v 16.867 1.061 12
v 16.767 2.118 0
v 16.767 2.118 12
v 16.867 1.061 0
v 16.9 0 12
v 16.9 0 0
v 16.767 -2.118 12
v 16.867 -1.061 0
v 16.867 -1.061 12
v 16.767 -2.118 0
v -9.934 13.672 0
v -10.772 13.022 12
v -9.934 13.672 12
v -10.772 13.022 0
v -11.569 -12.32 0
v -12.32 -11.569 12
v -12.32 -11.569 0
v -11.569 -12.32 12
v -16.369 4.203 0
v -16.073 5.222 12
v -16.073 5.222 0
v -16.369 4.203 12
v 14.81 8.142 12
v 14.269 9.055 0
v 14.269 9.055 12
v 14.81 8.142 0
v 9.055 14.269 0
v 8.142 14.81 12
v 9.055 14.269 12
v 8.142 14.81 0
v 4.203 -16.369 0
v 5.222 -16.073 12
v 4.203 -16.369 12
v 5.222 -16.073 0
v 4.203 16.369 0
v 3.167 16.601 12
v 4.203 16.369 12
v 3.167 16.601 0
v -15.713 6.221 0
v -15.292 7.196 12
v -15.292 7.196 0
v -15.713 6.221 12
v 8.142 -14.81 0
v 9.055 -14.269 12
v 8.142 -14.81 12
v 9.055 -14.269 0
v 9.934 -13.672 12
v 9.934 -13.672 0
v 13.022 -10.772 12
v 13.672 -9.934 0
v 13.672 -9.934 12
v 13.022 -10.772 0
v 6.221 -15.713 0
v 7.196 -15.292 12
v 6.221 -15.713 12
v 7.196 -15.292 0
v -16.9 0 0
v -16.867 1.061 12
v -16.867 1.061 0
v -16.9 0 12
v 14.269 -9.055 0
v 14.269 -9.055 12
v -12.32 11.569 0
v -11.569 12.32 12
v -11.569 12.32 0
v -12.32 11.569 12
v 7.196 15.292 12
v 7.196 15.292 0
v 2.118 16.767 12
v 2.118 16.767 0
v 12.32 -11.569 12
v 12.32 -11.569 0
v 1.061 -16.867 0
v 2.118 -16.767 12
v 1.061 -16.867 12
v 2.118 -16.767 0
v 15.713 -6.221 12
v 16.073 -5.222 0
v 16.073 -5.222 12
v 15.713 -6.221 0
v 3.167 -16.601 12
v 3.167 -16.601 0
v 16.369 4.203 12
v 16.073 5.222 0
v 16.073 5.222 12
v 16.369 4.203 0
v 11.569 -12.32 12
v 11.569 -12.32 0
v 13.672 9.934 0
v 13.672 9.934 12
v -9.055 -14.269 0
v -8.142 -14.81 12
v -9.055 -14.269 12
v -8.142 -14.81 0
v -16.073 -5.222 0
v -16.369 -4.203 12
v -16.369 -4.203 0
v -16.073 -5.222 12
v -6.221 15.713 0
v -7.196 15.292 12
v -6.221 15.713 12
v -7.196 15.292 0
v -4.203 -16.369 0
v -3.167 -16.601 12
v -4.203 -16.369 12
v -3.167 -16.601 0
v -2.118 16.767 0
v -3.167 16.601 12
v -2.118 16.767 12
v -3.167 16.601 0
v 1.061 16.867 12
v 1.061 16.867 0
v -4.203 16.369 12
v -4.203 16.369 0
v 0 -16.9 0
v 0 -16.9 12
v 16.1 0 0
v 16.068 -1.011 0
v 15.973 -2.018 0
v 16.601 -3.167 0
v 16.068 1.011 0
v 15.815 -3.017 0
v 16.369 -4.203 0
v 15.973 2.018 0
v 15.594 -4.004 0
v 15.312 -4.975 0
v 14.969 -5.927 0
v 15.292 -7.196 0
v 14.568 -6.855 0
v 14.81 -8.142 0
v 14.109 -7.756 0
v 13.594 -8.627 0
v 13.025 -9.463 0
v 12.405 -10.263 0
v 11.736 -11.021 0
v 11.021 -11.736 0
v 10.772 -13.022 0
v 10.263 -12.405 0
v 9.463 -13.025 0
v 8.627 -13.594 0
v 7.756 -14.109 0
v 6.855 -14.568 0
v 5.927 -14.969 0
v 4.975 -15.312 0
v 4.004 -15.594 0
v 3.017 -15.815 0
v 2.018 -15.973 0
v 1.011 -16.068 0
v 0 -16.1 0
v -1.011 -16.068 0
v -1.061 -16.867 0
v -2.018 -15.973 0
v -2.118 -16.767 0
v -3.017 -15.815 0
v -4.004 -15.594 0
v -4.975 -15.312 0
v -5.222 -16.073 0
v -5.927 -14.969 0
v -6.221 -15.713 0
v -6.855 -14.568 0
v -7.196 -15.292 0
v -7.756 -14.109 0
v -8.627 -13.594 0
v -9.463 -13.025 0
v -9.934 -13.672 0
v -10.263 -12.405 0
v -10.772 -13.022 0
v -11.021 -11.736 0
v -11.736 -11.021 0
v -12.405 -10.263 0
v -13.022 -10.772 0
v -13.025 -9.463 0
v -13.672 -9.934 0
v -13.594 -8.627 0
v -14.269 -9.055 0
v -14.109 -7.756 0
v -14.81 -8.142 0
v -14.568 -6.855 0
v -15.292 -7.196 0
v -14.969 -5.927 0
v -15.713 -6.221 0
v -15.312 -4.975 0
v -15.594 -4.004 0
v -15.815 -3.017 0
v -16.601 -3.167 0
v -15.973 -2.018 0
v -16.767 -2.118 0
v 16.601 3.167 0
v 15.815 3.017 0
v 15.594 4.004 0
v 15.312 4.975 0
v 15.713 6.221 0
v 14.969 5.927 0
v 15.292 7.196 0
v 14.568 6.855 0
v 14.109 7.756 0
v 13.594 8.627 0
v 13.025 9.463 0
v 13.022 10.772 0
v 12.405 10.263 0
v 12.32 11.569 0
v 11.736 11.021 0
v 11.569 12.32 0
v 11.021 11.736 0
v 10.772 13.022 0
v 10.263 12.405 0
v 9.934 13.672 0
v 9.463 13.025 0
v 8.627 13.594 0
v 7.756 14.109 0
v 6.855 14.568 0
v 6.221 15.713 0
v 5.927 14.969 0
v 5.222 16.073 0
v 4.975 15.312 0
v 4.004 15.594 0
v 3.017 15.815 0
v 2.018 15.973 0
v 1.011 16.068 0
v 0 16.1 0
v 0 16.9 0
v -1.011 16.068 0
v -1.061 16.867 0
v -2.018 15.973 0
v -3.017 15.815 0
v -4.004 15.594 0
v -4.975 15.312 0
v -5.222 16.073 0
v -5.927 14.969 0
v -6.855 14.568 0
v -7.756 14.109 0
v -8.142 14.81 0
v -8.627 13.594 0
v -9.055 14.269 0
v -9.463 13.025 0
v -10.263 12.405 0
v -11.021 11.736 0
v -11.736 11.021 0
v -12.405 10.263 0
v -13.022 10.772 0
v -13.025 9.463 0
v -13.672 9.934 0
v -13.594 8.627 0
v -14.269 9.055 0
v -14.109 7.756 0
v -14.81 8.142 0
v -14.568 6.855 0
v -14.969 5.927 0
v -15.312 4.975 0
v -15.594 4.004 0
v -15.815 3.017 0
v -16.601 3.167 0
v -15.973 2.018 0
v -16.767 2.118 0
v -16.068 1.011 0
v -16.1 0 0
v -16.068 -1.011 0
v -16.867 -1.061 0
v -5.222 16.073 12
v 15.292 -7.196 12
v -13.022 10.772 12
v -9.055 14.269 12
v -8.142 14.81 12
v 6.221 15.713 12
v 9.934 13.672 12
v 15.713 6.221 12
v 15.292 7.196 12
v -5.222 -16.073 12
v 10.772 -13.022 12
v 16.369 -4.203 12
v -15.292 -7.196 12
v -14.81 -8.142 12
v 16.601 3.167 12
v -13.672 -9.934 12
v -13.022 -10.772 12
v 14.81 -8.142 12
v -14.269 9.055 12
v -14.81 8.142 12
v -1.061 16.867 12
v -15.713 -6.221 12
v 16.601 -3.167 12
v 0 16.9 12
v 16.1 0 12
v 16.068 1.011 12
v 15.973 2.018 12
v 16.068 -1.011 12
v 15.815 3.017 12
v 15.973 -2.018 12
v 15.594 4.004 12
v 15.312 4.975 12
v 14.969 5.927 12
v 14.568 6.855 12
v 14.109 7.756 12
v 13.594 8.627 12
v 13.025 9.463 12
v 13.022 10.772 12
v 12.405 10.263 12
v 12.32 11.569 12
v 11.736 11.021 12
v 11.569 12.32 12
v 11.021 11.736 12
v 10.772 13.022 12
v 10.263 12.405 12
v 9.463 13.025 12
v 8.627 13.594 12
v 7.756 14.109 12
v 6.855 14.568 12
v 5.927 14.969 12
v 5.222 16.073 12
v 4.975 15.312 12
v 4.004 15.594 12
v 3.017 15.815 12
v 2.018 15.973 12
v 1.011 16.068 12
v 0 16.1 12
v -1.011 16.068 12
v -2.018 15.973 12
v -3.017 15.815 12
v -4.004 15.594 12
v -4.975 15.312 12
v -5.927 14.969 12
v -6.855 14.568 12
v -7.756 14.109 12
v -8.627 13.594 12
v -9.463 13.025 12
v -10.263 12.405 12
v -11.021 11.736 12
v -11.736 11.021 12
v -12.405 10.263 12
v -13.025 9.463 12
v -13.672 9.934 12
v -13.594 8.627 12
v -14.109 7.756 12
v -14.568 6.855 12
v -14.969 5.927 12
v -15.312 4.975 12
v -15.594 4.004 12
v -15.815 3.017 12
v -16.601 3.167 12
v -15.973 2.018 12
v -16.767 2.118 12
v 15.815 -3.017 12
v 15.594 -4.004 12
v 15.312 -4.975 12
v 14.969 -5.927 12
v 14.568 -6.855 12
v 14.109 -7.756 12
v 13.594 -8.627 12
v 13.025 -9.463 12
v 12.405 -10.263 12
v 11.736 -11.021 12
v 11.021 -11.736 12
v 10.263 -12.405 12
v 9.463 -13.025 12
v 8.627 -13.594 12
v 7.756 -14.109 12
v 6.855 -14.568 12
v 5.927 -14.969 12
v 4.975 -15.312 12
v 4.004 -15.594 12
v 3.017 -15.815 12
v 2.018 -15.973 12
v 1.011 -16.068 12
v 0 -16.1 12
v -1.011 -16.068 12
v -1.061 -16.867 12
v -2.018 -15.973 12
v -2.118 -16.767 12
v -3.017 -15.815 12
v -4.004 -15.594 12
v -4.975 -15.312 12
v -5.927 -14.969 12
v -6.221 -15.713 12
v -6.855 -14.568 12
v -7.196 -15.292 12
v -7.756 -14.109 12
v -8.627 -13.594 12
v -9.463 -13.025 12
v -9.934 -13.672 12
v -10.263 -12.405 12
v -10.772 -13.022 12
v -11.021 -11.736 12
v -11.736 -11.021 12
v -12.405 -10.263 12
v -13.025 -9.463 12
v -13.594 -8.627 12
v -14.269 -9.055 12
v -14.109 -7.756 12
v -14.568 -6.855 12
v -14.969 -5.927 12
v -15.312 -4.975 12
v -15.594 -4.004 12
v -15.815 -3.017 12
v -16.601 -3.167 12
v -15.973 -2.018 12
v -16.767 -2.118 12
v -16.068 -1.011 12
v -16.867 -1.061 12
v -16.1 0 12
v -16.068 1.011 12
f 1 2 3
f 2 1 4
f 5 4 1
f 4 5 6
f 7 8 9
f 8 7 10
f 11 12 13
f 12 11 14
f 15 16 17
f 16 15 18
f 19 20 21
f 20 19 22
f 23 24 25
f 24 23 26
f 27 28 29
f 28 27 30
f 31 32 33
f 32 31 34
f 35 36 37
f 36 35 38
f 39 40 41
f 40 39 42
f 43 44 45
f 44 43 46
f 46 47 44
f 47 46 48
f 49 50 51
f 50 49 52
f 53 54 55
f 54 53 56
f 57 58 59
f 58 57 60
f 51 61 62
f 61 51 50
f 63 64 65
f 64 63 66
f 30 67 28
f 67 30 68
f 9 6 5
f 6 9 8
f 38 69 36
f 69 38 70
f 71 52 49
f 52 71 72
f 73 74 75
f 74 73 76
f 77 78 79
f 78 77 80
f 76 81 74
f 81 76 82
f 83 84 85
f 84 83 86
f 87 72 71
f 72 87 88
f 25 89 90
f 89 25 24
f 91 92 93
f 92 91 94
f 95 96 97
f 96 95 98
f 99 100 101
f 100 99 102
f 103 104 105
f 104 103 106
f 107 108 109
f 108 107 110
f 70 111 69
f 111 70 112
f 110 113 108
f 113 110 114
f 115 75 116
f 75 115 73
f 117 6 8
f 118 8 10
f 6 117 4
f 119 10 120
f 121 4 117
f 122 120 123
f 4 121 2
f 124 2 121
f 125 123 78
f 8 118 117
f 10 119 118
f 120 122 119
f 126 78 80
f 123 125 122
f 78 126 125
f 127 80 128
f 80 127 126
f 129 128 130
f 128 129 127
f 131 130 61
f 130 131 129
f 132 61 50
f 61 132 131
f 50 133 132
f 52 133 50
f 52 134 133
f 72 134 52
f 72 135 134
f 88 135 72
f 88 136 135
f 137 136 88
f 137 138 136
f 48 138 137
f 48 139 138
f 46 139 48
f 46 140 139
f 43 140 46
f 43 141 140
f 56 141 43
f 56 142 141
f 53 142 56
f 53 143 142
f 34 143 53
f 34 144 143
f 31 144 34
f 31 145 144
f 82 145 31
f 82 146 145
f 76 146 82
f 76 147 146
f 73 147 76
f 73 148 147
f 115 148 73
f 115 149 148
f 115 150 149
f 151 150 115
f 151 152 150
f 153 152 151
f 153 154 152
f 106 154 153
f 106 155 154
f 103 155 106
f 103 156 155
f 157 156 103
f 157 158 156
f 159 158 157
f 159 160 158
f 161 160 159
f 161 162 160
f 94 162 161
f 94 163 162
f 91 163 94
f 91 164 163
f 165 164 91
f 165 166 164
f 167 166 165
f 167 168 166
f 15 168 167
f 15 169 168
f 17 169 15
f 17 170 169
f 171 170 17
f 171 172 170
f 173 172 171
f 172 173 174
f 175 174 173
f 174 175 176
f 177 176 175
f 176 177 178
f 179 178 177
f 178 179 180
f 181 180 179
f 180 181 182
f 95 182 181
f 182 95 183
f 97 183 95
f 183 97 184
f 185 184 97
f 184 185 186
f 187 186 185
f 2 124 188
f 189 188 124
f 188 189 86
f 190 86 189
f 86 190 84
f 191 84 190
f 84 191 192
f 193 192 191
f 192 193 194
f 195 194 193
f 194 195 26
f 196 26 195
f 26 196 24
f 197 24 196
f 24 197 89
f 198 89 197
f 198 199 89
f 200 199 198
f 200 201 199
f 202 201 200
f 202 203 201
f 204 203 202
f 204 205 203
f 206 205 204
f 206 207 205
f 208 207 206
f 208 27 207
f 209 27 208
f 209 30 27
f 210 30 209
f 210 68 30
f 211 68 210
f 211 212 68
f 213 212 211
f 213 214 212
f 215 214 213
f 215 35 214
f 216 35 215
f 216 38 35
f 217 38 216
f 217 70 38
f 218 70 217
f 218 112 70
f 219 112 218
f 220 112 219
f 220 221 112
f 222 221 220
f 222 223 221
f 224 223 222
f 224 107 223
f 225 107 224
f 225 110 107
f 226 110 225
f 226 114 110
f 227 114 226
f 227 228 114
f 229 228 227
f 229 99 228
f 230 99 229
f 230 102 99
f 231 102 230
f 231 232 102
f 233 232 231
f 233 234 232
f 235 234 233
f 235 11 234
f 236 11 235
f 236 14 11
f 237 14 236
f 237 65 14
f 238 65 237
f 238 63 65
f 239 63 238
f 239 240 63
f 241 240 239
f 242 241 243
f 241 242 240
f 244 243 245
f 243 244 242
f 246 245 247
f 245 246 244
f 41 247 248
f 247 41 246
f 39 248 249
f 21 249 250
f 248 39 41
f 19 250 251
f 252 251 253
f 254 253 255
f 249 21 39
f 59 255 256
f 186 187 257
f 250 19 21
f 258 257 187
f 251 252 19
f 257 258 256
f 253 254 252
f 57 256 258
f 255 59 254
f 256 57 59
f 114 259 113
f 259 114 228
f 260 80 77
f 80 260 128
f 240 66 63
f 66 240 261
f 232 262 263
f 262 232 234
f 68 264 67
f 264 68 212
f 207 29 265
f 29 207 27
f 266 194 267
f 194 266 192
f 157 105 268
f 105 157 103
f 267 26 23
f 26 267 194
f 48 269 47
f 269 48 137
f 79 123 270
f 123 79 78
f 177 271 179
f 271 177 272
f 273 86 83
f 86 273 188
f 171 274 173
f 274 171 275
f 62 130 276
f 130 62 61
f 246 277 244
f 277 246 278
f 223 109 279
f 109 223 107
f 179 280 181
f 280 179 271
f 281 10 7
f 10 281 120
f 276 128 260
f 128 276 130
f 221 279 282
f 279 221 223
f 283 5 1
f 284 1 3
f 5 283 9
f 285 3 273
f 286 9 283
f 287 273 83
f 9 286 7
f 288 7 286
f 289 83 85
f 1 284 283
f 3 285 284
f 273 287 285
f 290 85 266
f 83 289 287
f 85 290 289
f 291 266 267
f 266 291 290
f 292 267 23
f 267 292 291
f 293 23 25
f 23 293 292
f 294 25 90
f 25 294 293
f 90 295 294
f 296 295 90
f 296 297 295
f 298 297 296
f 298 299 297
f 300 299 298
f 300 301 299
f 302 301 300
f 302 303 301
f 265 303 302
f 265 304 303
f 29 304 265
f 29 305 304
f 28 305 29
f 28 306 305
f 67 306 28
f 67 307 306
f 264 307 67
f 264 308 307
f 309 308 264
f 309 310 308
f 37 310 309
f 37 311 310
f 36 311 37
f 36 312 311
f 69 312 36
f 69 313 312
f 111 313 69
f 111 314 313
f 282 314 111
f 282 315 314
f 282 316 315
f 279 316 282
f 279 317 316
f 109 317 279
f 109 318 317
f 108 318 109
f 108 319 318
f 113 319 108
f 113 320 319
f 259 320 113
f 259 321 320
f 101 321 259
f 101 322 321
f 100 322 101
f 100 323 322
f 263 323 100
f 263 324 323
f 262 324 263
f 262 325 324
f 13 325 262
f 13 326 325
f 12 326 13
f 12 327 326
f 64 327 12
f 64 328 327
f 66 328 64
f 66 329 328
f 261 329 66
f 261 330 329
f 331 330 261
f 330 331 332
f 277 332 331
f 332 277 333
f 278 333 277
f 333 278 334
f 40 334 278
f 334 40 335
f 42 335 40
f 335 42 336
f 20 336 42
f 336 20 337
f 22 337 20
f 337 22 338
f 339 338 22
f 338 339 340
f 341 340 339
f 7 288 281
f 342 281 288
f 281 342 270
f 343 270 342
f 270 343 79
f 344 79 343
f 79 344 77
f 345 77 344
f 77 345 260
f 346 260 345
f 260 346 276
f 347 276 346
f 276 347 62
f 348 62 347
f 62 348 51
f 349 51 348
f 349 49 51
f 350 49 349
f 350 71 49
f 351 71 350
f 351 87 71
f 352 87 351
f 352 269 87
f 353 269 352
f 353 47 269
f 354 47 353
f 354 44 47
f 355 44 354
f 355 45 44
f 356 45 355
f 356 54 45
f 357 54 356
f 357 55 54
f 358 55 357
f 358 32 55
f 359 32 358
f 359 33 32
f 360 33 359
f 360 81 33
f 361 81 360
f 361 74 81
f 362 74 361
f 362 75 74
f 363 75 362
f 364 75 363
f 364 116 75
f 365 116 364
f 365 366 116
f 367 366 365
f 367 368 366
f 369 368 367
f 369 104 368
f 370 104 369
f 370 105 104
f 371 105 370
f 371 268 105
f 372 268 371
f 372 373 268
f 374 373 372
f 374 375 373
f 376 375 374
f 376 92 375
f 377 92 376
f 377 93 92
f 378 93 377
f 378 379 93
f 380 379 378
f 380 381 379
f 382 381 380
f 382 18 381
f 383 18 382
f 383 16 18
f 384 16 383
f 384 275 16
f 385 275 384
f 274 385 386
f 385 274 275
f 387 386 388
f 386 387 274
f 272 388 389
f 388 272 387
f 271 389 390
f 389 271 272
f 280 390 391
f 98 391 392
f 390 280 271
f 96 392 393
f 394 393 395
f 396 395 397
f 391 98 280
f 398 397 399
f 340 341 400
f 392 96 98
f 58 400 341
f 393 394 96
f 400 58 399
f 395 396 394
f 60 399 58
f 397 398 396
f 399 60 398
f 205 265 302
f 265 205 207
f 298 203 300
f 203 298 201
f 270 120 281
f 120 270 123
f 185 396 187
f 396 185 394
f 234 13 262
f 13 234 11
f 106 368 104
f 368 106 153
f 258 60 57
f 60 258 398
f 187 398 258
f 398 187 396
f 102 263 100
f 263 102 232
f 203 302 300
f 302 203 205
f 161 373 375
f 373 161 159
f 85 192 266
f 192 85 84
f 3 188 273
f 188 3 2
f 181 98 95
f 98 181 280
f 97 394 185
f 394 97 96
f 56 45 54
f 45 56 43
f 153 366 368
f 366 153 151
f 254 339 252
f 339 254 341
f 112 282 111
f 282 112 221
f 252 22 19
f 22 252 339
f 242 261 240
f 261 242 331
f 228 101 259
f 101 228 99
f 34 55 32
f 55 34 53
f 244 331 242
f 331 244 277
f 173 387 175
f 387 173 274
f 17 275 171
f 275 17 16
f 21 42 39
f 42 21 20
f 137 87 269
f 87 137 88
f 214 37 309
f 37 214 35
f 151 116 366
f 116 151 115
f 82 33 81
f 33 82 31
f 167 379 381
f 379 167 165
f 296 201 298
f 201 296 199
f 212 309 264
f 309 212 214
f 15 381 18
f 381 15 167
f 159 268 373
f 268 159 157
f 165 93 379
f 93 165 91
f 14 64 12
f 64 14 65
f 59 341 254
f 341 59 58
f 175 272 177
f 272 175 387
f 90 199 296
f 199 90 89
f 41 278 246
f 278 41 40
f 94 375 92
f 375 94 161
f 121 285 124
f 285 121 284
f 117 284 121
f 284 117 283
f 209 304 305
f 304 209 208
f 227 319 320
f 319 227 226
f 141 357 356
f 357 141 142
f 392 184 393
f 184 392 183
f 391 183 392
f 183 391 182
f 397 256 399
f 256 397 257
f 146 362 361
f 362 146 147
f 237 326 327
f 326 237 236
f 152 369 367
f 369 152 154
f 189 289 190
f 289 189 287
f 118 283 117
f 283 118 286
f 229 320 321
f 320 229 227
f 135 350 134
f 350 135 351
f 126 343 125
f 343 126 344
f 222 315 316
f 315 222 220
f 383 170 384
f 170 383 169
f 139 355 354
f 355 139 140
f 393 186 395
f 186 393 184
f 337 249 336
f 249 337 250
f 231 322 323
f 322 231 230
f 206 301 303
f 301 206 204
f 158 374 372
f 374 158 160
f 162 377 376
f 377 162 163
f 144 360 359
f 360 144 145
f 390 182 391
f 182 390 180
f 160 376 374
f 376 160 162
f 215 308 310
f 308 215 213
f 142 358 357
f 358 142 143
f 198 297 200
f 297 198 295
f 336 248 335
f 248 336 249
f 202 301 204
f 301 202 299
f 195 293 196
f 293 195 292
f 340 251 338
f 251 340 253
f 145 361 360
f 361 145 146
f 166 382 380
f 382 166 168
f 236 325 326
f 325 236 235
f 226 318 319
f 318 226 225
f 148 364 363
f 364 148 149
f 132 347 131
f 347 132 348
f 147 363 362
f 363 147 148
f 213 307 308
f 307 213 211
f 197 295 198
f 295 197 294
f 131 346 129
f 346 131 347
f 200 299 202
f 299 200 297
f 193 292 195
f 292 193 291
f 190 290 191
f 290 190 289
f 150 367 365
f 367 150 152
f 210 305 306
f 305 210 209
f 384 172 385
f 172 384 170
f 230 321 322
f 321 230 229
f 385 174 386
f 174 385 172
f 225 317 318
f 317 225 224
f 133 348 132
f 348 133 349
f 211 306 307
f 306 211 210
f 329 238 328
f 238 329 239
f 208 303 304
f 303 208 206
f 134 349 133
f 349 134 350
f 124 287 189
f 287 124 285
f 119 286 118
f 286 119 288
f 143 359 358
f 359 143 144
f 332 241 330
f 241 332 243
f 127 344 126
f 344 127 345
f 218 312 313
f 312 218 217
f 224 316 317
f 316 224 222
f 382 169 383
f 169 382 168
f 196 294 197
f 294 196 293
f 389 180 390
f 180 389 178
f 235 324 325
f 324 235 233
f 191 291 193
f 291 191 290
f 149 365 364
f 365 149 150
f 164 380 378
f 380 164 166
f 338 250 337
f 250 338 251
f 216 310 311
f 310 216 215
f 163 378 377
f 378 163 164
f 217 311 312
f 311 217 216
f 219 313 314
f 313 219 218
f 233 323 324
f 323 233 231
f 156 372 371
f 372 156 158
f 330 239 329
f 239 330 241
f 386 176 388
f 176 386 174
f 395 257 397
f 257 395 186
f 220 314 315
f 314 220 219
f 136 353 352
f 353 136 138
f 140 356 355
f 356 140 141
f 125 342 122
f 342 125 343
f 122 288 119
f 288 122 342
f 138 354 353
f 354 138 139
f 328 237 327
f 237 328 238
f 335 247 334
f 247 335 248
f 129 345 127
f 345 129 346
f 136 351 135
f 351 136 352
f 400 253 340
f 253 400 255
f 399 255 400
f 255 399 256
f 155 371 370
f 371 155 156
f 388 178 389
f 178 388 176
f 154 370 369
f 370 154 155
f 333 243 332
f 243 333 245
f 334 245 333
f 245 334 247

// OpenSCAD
$fn = 100;
difference() {
    cylinder(h = 12, d =33.8);
    cylinder(h = 12, d =32.2);
}
